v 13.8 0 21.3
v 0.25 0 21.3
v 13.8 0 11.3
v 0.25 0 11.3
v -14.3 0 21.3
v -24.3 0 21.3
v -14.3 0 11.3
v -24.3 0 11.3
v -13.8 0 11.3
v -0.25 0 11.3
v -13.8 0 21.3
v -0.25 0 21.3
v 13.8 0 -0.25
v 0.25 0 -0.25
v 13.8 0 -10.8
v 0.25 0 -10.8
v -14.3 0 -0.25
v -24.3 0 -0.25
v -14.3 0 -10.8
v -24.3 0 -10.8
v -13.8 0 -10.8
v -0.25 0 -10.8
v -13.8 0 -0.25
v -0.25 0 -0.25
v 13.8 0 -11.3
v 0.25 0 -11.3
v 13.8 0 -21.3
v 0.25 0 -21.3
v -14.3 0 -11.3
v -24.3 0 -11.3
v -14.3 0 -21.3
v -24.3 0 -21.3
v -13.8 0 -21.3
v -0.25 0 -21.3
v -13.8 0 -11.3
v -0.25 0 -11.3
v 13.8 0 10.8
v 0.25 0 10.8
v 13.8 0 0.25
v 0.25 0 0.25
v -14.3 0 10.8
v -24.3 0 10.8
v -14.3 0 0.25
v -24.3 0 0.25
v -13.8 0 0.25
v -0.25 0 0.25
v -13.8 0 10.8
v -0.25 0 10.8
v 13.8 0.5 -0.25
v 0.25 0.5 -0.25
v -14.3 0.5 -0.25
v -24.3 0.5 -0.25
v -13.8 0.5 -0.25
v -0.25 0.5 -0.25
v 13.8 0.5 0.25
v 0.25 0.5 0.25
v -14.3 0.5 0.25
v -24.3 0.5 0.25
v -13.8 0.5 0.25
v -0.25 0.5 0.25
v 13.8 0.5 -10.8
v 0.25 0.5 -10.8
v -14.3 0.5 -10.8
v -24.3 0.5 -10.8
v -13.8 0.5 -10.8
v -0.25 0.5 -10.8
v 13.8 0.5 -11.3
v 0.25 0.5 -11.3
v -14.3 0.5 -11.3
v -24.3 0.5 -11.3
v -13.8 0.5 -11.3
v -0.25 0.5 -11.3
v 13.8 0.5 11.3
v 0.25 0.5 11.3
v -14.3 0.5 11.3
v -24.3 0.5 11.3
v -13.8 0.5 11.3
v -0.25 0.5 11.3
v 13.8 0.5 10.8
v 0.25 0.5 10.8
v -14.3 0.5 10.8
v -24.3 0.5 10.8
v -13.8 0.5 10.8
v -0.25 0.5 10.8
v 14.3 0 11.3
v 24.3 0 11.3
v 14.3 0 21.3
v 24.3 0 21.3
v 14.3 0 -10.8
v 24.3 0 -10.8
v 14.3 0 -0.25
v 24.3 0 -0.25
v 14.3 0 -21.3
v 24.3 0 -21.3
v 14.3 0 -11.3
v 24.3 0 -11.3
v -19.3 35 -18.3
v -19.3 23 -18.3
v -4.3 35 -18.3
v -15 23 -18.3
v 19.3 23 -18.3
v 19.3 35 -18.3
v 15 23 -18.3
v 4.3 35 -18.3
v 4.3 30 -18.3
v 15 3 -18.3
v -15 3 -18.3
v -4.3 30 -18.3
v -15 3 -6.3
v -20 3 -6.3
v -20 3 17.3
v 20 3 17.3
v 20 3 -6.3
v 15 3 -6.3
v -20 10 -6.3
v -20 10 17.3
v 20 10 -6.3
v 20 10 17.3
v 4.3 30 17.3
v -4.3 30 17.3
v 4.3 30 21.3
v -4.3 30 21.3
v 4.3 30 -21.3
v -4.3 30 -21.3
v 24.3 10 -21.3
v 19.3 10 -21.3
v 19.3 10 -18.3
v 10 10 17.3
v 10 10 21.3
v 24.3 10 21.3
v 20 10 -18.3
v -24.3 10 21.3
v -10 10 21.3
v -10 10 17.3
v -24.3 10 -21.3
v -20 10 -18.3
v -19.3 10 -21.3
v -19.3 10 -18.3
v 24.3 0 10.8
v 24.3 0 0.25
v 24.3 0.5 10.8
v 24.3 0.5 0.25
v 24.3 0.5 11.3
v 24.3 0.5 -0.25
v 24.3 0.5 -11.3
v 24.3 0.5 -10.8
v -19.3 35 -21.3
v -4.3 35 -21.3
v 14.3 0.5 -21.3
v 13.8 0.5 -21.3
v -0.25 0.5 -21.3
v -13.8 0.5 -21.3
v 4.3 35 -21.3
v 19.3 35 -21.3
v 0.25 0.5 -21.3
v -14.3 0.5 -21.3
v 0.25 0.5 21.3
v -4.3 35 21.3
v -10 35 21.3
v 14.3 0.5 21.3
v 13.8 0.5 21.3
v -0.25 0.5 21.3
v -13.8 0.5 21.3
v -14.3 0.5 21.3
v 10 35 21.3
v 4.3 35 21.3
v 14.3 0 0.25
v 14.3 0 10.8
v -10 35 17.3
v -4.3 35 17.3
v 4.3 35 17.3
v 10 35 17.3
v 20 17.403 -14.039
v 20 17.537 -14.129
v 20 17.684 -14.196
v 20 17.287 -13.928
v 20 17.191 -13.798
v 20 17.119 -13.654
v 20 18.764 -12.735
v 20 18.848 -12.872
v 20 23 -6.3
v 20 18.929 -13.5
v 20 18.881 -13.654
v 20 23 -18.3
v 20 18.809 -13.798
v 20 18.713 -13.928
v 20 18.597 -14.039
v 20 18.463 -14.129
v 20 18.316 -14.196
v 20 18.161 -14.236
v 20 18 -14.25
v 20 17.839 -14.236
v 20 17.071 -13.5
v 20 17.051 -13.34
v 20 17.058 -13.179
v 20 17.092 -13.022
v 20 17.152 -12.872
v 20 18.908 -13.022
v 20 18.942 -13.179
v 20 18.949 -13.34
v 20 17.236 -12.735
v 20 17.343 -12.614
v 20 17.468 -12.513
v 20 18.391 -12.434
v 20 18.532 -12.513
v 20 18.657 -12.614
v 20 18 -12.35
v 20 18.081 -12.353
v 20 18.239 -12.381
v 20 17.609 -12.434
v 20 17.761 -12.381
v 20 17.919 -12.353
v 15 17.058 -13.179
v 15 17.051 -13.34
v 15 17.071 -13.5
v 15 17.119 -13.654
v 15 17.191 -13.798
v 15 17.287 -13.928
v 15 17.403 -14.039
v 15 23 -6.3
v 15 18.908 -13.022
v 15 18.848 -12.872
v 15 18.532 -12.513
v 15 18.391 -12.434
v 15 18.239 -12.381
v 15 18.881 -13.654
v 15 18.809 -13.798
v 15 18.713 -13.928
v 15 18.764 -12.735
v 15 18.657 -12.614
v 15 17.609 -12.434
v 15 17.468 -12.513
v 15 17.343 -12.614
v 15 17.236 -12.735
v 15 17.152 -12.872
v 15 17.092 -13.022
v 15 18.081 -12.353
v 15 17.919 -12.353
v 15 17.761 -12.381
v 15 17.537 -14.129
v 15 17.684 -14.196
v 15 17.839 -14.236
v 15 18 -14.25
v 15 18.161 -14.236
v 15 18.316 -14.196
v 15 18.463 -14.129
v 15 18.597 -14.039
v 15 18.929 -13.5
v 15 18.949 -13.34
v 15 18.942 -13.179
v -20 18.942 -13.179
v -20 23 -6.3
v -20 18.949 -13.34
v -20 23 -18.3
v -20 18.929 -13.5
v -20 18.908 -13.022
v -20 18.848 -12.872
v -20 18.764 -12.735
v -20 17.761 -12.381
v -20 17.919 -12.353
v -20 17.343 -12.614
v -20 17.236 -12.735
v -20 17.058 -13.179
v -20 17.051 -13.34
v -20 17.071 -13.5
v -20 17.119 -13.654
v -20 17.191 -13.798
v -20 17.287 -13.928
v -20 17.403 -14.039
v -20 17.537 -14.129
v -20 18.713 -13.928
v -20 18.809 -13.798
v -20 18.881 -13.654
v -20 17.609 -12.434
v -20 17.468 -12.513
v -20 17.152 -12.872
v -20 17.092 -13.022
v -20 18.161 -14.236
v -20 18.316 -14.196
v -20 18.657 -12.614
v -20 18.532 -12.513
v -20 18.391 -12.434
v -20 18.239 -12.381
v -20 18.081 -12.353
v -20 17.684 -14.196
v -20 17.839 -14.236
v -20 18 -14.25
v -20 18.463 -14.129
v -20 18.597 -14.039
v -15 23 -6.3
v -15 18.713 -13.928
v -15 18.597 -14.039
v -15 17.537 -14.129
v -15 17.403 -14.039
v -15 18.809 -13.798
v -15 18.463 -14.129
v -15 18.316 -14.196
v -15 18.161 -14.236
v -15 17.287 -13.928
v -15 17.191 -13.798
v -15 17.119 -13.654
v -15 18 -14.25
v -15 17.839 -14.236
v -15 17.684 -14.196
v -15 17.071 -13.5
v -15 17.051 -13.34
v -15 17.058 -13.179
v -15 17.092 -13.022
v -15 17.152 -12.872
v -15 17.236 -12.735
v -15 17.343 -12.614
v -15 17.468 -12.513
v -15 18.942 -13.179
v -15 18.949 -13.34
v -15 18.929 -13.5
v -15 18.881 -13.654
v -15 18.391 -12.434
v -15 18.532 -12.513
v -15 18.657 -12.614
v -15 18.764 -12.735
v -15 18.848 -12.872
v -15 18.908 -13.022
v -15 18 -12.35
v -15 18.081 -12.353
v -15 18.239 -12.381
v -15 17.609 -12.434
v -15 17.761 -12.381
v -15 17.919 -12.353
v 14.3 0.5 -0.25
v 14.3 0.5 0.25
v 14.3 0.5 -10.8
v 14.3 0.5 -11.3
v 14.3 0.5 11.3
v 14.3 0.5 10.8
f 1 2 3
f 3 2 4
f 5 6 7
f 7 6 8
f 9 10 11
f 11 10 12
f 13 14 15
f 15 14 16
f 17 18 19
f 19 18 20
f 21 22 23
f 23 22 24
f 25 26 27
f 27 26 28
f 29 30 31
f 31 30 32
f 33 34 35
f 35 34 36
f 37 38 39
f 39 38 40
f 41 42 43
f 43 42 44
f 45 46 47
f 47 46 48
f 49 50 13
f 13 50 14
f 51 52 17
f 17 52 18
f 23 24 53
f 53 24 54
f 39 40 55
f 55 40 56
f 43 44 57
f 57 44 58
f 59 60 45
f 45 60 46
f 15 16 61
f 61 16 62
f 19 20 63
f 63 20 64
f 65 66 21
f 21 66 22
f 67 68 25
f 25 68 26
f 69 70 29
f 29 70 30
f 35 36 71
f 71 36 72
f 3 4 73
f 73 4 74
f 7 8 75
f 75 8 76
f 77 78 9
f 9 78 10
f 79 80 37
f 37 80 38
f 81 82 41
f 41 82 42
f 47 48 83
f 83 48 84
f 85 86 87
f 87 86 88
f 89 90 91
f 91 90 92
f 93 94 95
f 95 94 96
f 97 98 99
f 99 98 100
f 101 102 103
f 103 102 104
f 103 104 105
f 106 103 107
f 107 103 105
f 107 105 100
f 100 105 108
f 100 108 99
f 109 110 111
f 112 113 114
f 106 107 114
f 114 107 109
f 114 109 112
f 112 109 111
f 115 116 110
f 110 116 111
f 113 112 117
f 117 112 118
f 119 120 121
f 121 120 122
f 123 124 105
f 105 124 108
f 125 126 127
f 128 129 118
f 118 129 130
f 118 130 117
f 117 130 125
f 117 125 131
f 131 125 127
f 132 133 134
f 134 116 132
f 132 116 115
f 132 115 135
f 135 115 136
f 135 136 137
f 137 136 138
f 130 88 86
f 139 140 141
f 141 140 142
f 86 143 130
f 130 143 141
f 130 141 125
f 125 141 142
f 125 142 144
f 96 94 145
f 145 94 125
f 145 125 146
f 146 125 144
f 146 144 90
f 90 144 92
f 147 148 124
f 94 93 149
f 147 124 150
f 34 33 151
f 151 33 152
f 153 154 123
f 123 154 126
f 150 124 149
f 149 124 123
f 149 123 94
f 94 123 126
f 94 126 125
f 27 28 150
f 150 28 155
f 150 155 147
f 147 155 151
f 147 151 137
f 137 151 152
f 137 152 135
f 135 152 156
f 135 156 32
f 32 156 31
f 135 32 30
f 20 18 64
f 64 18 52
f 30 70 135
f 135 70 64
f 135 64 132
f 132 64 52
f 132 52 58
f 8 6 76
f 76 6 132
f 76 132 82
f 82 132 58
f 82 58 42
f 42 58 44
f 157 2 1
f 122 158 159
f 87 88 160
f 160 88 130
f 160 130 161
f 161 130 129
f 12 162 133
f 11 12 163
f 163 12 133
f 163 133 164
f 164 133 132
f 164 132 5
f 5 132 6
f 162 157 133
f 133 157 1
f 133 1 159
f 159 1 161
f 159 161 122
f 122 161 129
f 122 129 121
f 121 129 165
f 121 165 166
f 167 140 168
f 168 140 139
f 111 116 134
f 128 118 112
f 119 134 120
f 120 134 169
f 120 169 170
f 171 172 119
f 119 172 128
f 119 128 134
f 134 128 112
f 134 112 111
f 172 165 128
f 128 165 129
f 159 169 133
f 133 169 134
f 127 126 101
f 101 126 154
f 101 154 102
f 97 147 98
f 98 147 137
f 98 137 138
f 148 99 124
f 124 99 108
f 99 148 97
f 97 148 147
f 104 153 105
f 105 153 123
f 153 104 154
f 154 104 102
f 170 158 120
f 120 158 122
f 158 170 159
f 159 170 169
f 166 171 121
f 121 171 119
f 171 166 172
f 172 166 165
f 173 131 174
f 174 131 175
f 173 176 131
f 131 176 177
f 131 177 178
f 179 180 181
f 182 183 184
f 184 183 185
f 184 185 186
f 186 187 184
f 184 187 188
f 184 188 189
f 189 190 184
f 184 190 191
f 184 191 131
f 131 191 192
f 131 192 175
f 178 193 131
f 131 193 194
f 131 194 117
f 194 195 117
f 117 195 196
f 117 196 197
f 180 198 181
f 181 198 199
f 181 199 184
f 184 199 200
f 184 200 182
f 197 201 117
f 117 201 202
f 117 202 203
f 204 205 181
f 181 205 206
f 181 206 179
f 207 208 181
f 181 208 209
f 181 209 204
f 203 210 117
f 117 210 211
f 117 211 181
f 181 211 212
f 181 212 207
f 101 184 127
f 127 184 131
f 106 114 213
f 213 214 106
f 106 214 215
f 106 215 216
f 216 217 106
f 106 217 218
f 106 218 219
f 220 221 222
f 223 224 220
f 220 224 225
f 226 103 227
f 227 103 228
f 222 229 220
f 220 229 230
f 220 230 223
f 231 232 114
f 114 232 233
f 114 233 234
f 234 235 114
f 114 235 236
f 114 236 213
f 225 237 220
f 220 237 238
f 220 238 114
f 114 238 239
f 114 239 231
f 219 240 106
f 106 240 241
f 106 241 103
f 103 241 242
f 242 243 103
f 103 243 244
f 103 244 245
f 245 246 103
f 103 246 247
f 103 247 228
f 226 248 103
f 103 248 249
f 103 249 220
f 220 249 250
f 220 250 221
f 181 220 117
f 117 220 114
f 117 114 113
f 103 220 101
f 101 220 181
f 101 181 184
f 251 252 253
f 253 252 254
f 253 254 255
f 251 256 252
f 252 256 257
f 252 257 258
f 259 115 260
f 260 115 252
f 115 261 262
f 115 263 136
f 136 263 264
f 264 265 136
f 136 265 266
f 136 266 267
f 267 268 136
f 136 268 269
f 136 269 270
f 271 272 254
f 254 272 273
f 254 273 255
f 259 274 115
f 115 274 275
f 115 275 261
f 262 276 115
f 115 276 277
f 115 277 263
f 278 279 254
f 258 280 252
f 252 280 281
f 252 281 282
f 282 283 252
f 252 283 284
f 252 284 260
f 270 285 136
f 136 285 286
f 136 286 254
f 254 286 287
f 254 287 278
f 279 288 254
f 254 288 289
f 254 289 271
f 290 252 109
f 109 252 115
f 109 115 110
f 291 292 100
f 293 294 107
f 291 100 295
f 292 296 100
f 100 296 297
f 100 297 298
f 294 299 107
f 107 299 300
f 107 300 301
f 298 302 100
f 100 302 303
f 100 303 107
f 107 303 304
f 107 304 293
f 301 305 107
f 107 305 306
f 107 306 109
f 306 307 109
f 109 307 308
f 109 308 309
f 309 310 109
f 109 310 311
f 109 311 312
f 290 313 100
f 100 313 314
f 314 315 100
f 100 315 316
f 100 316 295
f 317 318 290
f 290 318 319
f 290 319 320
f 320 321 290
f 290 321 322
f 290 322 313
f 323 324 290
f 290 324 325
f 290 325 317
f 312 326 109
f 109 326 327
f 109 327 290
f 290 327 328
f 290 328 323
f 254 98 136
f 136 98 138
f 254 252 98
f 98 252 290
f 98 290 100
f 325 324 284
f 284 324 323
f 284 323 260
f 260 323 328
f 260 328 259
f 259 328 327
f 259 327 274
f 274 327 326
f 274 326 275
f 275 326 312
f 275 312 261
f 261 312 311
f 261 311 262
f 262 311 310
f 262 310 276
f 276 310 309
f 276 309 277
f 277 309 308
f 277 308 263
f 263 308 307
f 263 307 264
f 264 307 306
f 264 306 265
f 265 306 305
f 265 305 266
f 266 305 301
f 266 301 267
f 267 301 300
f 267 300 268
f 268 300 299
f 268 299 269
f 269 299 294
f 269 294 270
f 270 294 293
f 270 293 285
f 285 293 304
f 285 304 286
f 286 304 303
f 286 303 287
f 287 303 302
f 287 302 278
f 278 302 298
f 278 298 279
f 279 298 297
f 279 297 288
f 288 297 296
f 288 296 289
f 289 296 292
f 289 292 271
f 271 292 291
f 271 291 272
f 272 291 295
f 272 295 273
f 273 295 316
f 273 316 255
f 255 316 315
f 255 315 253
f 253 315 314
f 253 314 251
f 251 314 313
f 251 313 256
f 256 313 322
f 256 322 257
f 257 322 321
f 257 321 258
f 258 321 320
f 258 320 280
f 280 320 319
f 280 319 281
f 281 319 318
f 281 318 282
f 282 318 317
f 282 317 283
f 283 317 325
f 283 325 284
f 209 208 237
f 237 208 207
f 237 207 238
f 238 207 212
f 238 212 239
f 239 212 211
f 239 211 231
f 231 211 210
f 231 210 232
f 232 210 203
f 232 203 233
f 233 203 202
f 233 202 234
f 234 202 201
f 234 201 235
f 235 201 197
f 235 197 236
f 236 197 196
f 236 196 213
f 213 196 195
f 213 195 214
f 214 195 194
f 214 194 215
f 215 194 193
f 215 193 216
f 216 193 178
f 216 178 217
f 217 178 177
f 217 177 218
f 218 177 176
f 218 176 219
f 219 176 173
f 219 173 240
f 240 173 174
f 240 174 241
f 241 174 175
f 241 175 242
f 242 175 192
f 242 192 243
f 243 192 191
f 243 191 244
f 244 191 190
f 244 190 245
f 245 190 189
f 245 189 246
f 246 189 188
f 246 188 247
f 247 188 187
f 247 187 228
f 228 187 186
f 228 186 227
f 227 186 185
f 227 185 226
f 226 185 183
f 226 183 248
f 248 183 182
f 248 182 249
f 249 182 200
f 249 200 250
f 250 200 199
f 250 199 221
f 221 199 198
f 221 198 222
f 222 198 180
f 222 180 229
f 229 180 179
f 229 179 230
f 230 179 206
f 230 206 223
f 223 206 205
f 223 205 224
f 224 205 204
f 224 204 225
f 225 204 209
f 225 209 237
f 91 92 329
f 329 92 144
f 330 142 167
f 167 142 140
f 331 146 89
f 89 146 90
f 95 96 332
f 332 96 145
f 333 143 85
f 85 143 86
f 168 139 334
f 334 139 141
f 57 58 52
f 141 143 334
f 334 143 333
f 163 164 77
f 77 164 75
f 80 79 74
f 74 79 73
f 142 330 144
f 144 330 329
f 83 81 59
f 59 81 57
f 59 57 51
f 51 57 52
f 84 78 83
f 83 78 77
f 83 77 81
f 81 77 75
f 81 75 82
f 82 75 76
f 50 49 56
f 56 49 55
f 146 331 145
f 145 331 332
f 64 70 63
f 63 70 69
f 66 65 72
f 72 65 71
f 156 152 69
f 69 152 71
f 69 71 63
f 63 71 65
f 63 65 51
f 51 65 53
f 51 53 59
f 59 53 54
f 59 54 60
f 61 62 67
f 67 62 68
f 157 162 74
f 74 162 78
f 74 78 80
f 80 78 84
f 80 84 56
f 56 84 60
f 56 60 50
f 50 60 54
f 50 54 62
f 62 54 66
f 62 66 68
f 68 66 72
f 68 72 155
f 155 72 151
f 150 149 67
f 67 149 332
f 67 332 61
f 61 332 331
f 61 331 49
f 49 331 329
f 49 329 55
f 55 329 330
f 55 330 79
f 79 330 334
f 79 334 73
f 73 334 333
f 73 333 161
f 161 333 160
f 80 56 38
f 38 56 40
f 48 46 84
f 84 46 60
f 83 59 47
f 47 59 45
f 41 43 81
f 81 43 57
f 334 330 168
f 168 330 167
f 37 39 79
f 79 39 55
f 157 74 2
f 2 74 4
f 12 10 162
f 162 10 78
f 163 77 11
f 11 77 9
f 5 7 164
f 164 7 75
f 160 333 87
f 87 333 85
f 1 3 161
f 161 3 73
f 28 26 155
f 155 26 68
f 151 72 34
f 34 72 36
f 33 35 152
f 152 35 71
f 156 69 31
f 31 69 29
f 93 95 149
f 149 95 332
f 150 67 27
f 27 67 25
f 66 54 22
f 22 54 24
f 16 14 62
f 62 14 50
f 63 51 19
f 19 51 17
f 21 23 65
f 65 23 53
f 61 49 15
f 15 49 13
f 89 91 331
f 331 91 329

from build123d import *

# Parameters (mm, degrees)
SKETCH_1_W          = 48.6
SKETCH_1_H          = 42.6
EXTRUDE_1_DEPTH     = 3
SKETCH_2_W          = 48.6
SKETCH_2_H          = 42.6
SKETCH_2_W_2        = 40
SKETCH_2_H_2        = 35.6
EXTRUDE_2_DEPTH     = 7
SKETCH_3_W          = 20
SKETCH_3_H          = 4
SKETCH_3_W_2        = 38.6
SKETCH_3_H_2        = 3
EXTRUDE_3_DEPTH     = 20
SKETCH_6_W          = 15
SKETCH_6_H          = 3
SKETCH_6_W_2        = 5.7
SKETCH_6_H_2        = 4
EXTRUDE_4_DEPTH     = 5
SKETCH_7_W          = 5
SKETCH_7_H          = 12
EXTRUDE_5_DEPTH     = 20
SKETCH_8_R          = 0.95
CUT_EXTRUDE_1_DEPTH = 64.566107321
SKETCH_9_W          = 48.6
SKETCH_9_H          = 0.5
CUT_EXTRUDE_2_DEPTH = 0.5
SKETCH_10_W         = 0.5
SKETCH_10_H         = 42.6
CUT_EXTRUDE_3_DEPTH = 0.5


with BuildPart() as part:
    # 草图1 → 凸台-拉伸1 (new body)
    with BuildSketch(Plane(origin=(0, 0, 0), x_dir=(1, 0, 0), z_dir=(0, 1, 0))):
        Rectangle(SKETCH_1_W, SKETCH_1_H)
    extrude(amount=EXTRUDE_1_DEPTH)

    # 草图2 → 凸台-拉伸2 (add)
    with BuildSketch(Plane(origin=(0, 3, 0), x_dir=(1, 0, 0), z_dir=(0, 1, 0))):
        Rectangle(SKETCH_2_W, SKETCH_2_H)
        with Locations((0, 0.5)):
            Rectangle(SKETCH_2_W_2, SKETCH_2_H_2, mode=Mode.SUBTRACT)
    extrude(amount=EXTRUDE_2_DEPTH)

    # 草图3 → 凸台-拉伸3 (add)
    with BuildSketch(Plane(origin=(0, 10, 0), x_dir=(1, 0, 0), z_dir=(0, 1, 0))):
        with Locations((0, -19.3)):
            Rectangle(SKETCH_3_W, SKETCH_3_H)
        with Locations((0, 19.8)):
            Rectangle(SKETCH_3_W_2, SKETCH_3_H_2)
    extrude(amount=EXTRUDE_3_DEPTH)

    # 草图6 → 凸台-拉伸4 (add)
    with BuildSketch(Plane(origin=(0, 30, 0), x_dir=(1, 0, 0), z_dir=(0, 1, 0))):
        with Locations((-11.8, 19.8)):
            Rectangle(SKETCH_6_W, SKETCH_6_H)
        with Locations((11.8, 19.8)):
            Rectangle(SKETCH_6_W, SKETCH_6_H)
        with Locations((-7.15, -19.3)):
            Rectangle(SKETCH_6_W_2, SKETCH_6_H_2)
        with Locations((7.15, -19.3)):
            Rectangle(SKETCH_6_W_2, SKETCH_6_H_2)
    extrude(amount=EXTRUDE_4_DEPTH)

    # 草图7 → 凸台-拉伸5 (add)
    with BuildSketch(Plane(origin=(0, 3, 0), x_dir=(1, 0, 0), z_dir=(0, 1, 0))):
        with Locations((17.5, 12.3)):
            Rectangle(SKETCH_7_W, SKETCH_7_H)
        with Locations((-17.5, 12.3)):
            Rectangle(SKETCH_7_W, SKETCH_7_H)
    extrude(amount=EXTRUDE_5_DEPTH)

    # 草图8 → 切除-拉伸1 (cut, through all)
    with BuildSketch(Plane(origin=(24.3, 0, 0), x_dir=(0, 0, -1), z_dir=(1, 0, 0))):
        with Locations((13.3, 18)):
            Circle(SKETCH_8_R)
    extrude(amount=-CUT_EXTRUDE_1_DEPTH, mode=Mode.SUBTRACT)

    # 草图9 → 切除-拉伸2 (cut)
    with BuildSketch(Plane.XZ):
        with Locations((0, 11.05)):
            Rectangle(SKETCH_9_W, SKETCH_9_H)
        with Locations((0, -11.05)):
            Rectangle(SKETCH_9_W, SKETCH_9_H)
        Rectangle(SKETCH_9_W, SKETCH_9_H)
    extrude(amount=-CUT_EXTRUDE_2_DEPTH, mode=Mode.SUBTRACT)

    # 草图10 → 切除-拉伸3 (cut)
    with BuildSketch(Plane.XZ):
        Rectangle(SKETCH_10_W, SKETCH_10_H)
        with Locations((-14.05, 0)):
            Rectangle(SKETCH_10_W, SKETCH_10_H)
        with Locations((14.05, 0)):
            Rectangle(SKETCH_10_W, SKETCH_10_H)
    extrude(amount=-CUT_EXTRUDE_3_DEPTH, mode=Mode.SUBTRACT)


solid = part.part
